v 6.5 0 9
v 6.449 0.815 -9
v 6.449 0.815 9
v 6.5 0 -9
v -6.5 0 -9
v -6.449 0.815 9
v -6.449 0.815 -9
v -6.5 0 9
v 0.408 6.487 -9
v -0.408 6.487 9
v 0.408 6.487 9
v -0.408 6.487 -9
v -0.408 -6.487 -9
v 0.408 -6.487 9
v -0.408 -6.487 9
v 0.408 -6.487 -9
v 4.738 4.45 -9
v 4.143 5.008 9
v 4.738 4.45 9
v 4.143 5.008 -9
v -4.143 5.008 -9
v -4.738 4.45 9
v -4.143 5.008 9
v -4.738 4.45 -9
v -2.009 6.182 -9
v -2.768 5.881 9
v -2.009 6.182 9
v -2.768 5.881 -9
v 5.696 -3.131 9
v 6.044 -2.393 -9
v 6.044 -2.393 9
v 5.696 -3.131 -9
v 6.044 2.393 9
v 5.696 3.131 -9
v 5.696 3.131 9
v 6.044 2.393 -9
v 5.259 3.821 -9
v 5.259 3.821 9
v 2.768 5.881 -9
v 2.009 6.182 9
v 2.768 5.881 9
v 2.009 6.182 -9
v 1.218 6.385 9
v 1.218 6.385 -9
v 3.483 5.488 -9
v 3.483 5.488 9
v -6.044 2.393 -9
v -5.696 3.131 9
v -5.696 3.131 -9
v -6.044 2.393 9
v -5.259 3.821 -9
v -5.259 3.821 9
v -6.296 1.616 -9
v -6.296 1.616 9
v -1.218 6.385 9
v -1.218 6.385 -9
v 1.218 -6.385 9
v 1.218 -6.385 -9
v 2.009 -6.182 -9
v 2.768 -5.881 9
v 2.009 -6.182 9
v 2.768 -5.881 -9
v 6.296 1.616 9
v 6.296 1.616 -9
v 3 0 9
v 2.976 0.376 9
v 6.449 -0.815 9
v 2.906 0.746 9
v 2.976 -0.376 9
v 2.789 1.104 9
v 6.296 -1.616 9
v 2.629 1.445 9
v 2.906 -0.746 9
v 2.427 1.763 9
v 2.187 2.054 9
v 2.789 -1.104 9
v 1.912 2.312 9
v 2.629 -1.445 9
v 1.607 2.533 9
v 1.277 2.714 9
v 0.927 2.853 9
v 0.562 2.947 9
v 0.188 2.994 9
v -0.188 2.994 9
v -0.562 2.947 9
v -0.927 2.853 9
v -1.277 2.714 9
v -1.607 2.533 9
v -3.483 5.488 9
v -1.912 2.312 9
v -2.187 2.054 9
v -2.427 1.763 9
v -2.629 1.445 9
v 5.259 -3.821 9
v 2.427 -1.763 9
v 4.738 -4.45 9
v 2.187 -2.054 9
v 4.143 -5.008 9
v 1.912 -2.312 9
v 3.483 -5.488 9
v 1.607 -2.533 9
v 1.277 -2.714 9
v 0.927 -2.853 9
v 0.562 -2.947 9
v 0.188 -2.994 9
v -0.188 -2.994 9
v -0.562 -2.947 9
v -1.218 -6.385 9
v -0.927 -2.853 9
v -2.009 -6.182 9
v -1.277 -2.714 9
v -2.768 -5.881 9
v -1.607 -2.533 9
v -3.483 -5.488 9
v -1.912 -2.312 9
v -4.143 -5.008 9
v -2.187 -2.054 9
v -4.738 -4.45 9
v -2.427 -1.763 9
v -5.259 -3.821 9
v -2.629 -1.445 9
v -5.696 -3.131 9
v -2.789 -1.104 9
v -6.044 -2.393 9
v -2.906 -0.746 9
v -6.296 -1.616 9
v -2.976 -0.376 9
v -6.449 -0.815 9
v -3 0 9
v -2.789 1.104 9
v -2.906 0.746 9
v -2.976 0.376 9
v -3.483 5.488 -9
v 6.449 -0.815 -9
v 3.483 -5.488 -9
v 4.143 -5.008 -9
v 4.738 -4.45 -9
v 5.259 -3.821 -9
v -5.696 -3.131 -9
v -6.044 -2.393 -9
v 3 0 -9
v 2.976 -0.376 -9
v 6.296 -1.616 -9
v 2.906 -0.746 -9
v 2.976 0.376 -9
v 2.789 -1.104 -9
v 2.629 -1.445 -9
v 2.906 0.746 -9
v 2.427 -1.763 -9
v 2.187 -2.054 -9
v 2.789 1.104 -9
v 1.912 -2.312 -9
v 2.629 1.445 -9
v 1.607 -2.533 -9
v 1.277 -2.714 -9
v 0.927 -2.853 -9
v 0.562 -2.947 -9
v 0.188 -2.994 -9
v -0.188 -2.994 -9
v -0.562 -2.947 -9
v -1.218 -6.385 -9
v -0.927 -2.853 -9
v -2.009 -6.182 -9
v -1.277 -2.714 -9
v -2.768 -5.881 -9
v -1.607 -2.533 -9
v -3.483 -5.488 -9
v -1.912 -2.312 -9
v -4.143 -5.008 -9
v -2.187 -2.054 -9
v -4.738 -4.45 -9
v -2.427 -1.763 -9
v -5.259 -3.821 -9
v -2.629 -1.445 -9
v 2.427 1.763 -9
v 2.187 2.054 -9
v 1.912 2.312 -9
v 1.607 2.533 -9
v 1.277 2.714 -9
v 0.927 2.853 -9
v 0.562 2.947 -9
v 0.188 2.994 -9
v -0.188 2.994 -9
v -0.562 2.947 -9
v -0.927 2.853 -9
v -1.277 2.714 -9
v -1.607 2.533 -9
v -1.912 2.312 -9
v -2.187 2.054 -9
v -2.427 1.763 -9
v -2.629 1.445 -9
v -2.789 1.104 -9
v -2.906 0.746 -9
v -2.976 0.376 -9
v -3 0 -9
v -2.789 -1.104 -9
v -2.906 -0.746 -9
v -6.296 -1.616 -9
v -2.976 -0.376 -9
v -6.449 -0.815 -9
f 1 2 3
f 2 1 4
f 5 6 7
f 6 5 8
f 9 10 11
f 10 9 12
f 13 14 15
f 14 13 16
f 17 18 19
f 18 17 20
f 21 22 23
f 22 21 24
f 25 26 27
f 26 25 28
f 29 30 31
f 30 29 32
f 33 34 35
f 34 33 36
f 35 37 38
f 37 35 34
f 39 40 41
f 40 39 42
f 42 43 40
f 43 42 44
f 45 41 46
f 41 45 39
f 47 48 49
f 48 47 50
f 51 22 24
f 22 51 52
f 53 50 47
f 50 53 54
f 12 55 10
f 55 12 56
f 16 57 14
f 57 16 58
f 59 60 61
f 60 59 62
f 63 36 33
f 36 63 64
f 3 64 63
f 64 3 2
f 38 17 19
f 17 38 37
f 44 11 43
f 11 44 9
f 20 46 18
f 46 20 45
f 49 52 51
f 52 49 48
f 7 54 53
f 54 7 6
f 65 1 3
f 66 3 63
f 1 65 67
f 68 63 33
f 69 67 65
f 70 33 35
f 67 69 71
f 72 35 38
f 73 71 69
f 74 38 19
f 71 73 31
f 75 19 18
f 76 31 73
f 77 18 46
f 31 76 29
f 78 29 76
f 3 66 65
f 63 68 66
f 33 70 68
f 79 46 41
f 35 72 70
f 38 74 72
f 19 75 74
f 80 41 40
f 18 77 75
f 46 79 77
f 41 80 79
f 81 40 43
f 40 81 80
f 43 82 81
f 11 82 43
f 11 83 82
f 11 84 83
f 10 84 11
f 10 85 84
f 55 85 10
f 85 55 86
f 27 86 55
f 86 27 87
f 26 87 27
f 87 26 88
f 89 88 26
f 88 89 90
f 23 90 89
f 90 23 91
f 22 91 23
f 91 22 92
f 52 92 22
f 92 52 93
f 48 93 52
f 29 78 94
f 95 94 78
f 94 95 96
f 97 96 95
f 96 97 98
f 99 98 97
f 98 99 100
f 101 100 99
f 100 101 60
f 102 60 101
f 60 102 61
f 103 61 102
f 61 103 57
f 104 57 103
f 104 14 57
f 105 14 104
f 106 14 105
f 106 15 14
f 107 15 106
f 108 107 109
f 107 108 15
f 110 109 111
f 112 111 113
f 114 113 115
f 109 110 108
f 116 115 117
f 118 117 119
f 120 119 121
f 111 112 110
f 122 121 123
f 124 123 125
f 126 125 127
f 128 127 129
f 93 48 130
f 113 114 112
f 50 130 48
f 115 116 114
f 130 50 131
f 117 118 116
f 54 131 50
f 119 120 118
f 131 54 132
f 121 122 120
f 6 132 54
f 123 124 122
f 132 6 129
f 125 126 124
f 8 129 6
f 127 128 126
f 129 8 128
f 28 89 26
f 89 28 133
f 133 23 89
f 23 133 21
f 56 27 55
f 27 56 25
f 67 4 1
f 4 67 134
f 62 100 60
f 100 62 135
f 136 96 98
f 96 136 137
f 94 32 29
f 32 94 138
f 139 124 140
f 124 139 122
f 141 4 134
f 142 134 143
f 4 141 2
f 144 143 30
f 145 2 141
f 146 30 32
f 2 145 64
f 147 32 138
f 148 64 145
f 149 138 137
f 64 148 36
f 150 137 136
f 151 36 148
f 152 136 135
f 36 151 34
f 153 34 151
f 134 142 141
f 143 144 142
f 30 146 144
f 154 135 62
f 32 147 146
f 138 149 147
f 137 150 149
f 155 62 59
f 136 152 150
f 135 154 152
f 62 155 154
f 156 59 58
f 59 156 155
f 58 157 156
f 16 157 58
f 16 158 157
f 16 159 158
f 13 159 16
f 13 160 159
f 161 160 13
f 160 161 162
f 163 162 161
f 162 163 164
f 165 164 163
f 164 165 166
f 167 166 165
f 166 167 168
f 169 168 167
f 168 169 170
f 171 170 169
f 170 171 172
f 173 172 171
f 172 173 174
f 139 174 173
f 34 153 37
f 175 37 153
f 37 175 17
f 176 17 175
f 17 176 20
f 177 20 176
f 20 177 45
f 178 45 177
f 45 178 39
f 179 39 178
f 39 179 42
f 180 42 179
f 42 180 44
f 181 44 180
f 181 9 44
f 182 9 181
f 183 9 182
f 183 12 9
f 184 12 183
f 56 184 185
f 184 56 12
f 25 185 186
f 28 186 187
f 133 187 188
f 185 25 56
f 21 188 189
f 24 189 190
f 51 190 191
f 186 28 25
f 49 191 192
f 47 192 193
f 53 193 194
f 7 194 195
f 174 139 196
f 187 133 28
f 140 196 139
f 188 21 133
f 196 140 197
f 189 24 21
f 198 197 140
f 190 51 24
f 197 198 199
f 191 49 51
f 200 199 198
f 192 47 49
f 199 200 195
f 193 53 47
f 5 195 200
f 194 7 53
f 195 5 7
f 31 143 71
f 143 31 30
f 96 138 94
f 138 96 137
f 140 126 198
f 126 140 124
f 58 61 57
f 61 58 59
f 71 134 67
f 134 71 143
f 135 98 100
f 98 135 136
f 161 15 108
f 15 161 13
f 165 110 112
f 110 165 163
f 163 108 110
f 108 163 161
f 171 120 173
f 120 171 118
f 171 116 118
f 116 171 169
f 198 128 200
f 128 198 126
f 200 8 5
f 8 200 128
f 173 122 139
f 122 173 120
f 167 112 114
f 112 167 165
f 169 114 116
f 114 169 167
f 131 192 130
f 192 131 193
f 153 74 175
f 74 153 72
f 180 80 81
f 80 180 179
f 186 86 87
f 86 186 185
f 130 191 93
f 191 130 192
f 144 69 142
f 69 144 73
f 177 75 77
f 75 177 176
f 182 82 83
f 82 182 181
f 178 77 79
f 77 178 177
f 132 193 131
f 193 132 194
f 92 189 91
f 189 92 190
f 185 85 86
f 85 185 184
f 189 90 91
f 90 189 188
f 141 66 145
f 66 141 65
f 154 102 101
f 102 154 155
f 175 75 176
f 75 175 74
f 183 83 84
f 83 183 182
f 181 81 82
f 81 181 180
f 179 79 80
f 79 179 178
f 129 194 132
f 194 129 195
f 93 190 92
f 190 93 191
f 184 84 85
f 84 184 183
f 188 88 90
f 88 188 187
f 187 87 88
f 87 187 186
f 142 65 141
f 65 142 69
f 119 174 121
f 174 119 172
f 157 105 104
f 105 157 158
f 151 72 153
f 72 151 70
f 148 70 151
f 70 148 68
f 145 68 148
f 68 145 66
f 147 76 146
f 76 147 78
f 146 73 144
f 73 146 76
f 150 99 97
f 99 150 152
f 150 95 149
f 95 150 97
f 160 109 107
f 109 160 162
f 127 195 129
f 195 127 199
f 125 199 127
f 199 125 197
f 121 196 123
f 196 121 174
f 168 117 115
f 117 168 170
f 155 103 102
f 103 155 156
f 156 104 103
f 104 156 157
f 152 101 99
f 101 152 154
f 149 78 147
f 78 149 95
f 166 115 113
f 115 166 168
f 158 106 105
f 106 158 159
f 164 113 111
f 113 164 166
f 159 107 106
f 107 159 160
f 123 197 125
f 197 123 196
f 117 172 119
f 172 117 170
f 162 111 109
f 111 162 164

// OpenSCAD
$fn = 50;


difference() {
	union() {
		translate(v = [0, 0, -9.0000000000]) {
			cylinder(h = 18, r = 6.5000000000);
		}
	}
	union() {
		translate(v = [0, 0, -100.0000000000]) {
			cylinder(h = 200, r = 3);
		}
	}
}
